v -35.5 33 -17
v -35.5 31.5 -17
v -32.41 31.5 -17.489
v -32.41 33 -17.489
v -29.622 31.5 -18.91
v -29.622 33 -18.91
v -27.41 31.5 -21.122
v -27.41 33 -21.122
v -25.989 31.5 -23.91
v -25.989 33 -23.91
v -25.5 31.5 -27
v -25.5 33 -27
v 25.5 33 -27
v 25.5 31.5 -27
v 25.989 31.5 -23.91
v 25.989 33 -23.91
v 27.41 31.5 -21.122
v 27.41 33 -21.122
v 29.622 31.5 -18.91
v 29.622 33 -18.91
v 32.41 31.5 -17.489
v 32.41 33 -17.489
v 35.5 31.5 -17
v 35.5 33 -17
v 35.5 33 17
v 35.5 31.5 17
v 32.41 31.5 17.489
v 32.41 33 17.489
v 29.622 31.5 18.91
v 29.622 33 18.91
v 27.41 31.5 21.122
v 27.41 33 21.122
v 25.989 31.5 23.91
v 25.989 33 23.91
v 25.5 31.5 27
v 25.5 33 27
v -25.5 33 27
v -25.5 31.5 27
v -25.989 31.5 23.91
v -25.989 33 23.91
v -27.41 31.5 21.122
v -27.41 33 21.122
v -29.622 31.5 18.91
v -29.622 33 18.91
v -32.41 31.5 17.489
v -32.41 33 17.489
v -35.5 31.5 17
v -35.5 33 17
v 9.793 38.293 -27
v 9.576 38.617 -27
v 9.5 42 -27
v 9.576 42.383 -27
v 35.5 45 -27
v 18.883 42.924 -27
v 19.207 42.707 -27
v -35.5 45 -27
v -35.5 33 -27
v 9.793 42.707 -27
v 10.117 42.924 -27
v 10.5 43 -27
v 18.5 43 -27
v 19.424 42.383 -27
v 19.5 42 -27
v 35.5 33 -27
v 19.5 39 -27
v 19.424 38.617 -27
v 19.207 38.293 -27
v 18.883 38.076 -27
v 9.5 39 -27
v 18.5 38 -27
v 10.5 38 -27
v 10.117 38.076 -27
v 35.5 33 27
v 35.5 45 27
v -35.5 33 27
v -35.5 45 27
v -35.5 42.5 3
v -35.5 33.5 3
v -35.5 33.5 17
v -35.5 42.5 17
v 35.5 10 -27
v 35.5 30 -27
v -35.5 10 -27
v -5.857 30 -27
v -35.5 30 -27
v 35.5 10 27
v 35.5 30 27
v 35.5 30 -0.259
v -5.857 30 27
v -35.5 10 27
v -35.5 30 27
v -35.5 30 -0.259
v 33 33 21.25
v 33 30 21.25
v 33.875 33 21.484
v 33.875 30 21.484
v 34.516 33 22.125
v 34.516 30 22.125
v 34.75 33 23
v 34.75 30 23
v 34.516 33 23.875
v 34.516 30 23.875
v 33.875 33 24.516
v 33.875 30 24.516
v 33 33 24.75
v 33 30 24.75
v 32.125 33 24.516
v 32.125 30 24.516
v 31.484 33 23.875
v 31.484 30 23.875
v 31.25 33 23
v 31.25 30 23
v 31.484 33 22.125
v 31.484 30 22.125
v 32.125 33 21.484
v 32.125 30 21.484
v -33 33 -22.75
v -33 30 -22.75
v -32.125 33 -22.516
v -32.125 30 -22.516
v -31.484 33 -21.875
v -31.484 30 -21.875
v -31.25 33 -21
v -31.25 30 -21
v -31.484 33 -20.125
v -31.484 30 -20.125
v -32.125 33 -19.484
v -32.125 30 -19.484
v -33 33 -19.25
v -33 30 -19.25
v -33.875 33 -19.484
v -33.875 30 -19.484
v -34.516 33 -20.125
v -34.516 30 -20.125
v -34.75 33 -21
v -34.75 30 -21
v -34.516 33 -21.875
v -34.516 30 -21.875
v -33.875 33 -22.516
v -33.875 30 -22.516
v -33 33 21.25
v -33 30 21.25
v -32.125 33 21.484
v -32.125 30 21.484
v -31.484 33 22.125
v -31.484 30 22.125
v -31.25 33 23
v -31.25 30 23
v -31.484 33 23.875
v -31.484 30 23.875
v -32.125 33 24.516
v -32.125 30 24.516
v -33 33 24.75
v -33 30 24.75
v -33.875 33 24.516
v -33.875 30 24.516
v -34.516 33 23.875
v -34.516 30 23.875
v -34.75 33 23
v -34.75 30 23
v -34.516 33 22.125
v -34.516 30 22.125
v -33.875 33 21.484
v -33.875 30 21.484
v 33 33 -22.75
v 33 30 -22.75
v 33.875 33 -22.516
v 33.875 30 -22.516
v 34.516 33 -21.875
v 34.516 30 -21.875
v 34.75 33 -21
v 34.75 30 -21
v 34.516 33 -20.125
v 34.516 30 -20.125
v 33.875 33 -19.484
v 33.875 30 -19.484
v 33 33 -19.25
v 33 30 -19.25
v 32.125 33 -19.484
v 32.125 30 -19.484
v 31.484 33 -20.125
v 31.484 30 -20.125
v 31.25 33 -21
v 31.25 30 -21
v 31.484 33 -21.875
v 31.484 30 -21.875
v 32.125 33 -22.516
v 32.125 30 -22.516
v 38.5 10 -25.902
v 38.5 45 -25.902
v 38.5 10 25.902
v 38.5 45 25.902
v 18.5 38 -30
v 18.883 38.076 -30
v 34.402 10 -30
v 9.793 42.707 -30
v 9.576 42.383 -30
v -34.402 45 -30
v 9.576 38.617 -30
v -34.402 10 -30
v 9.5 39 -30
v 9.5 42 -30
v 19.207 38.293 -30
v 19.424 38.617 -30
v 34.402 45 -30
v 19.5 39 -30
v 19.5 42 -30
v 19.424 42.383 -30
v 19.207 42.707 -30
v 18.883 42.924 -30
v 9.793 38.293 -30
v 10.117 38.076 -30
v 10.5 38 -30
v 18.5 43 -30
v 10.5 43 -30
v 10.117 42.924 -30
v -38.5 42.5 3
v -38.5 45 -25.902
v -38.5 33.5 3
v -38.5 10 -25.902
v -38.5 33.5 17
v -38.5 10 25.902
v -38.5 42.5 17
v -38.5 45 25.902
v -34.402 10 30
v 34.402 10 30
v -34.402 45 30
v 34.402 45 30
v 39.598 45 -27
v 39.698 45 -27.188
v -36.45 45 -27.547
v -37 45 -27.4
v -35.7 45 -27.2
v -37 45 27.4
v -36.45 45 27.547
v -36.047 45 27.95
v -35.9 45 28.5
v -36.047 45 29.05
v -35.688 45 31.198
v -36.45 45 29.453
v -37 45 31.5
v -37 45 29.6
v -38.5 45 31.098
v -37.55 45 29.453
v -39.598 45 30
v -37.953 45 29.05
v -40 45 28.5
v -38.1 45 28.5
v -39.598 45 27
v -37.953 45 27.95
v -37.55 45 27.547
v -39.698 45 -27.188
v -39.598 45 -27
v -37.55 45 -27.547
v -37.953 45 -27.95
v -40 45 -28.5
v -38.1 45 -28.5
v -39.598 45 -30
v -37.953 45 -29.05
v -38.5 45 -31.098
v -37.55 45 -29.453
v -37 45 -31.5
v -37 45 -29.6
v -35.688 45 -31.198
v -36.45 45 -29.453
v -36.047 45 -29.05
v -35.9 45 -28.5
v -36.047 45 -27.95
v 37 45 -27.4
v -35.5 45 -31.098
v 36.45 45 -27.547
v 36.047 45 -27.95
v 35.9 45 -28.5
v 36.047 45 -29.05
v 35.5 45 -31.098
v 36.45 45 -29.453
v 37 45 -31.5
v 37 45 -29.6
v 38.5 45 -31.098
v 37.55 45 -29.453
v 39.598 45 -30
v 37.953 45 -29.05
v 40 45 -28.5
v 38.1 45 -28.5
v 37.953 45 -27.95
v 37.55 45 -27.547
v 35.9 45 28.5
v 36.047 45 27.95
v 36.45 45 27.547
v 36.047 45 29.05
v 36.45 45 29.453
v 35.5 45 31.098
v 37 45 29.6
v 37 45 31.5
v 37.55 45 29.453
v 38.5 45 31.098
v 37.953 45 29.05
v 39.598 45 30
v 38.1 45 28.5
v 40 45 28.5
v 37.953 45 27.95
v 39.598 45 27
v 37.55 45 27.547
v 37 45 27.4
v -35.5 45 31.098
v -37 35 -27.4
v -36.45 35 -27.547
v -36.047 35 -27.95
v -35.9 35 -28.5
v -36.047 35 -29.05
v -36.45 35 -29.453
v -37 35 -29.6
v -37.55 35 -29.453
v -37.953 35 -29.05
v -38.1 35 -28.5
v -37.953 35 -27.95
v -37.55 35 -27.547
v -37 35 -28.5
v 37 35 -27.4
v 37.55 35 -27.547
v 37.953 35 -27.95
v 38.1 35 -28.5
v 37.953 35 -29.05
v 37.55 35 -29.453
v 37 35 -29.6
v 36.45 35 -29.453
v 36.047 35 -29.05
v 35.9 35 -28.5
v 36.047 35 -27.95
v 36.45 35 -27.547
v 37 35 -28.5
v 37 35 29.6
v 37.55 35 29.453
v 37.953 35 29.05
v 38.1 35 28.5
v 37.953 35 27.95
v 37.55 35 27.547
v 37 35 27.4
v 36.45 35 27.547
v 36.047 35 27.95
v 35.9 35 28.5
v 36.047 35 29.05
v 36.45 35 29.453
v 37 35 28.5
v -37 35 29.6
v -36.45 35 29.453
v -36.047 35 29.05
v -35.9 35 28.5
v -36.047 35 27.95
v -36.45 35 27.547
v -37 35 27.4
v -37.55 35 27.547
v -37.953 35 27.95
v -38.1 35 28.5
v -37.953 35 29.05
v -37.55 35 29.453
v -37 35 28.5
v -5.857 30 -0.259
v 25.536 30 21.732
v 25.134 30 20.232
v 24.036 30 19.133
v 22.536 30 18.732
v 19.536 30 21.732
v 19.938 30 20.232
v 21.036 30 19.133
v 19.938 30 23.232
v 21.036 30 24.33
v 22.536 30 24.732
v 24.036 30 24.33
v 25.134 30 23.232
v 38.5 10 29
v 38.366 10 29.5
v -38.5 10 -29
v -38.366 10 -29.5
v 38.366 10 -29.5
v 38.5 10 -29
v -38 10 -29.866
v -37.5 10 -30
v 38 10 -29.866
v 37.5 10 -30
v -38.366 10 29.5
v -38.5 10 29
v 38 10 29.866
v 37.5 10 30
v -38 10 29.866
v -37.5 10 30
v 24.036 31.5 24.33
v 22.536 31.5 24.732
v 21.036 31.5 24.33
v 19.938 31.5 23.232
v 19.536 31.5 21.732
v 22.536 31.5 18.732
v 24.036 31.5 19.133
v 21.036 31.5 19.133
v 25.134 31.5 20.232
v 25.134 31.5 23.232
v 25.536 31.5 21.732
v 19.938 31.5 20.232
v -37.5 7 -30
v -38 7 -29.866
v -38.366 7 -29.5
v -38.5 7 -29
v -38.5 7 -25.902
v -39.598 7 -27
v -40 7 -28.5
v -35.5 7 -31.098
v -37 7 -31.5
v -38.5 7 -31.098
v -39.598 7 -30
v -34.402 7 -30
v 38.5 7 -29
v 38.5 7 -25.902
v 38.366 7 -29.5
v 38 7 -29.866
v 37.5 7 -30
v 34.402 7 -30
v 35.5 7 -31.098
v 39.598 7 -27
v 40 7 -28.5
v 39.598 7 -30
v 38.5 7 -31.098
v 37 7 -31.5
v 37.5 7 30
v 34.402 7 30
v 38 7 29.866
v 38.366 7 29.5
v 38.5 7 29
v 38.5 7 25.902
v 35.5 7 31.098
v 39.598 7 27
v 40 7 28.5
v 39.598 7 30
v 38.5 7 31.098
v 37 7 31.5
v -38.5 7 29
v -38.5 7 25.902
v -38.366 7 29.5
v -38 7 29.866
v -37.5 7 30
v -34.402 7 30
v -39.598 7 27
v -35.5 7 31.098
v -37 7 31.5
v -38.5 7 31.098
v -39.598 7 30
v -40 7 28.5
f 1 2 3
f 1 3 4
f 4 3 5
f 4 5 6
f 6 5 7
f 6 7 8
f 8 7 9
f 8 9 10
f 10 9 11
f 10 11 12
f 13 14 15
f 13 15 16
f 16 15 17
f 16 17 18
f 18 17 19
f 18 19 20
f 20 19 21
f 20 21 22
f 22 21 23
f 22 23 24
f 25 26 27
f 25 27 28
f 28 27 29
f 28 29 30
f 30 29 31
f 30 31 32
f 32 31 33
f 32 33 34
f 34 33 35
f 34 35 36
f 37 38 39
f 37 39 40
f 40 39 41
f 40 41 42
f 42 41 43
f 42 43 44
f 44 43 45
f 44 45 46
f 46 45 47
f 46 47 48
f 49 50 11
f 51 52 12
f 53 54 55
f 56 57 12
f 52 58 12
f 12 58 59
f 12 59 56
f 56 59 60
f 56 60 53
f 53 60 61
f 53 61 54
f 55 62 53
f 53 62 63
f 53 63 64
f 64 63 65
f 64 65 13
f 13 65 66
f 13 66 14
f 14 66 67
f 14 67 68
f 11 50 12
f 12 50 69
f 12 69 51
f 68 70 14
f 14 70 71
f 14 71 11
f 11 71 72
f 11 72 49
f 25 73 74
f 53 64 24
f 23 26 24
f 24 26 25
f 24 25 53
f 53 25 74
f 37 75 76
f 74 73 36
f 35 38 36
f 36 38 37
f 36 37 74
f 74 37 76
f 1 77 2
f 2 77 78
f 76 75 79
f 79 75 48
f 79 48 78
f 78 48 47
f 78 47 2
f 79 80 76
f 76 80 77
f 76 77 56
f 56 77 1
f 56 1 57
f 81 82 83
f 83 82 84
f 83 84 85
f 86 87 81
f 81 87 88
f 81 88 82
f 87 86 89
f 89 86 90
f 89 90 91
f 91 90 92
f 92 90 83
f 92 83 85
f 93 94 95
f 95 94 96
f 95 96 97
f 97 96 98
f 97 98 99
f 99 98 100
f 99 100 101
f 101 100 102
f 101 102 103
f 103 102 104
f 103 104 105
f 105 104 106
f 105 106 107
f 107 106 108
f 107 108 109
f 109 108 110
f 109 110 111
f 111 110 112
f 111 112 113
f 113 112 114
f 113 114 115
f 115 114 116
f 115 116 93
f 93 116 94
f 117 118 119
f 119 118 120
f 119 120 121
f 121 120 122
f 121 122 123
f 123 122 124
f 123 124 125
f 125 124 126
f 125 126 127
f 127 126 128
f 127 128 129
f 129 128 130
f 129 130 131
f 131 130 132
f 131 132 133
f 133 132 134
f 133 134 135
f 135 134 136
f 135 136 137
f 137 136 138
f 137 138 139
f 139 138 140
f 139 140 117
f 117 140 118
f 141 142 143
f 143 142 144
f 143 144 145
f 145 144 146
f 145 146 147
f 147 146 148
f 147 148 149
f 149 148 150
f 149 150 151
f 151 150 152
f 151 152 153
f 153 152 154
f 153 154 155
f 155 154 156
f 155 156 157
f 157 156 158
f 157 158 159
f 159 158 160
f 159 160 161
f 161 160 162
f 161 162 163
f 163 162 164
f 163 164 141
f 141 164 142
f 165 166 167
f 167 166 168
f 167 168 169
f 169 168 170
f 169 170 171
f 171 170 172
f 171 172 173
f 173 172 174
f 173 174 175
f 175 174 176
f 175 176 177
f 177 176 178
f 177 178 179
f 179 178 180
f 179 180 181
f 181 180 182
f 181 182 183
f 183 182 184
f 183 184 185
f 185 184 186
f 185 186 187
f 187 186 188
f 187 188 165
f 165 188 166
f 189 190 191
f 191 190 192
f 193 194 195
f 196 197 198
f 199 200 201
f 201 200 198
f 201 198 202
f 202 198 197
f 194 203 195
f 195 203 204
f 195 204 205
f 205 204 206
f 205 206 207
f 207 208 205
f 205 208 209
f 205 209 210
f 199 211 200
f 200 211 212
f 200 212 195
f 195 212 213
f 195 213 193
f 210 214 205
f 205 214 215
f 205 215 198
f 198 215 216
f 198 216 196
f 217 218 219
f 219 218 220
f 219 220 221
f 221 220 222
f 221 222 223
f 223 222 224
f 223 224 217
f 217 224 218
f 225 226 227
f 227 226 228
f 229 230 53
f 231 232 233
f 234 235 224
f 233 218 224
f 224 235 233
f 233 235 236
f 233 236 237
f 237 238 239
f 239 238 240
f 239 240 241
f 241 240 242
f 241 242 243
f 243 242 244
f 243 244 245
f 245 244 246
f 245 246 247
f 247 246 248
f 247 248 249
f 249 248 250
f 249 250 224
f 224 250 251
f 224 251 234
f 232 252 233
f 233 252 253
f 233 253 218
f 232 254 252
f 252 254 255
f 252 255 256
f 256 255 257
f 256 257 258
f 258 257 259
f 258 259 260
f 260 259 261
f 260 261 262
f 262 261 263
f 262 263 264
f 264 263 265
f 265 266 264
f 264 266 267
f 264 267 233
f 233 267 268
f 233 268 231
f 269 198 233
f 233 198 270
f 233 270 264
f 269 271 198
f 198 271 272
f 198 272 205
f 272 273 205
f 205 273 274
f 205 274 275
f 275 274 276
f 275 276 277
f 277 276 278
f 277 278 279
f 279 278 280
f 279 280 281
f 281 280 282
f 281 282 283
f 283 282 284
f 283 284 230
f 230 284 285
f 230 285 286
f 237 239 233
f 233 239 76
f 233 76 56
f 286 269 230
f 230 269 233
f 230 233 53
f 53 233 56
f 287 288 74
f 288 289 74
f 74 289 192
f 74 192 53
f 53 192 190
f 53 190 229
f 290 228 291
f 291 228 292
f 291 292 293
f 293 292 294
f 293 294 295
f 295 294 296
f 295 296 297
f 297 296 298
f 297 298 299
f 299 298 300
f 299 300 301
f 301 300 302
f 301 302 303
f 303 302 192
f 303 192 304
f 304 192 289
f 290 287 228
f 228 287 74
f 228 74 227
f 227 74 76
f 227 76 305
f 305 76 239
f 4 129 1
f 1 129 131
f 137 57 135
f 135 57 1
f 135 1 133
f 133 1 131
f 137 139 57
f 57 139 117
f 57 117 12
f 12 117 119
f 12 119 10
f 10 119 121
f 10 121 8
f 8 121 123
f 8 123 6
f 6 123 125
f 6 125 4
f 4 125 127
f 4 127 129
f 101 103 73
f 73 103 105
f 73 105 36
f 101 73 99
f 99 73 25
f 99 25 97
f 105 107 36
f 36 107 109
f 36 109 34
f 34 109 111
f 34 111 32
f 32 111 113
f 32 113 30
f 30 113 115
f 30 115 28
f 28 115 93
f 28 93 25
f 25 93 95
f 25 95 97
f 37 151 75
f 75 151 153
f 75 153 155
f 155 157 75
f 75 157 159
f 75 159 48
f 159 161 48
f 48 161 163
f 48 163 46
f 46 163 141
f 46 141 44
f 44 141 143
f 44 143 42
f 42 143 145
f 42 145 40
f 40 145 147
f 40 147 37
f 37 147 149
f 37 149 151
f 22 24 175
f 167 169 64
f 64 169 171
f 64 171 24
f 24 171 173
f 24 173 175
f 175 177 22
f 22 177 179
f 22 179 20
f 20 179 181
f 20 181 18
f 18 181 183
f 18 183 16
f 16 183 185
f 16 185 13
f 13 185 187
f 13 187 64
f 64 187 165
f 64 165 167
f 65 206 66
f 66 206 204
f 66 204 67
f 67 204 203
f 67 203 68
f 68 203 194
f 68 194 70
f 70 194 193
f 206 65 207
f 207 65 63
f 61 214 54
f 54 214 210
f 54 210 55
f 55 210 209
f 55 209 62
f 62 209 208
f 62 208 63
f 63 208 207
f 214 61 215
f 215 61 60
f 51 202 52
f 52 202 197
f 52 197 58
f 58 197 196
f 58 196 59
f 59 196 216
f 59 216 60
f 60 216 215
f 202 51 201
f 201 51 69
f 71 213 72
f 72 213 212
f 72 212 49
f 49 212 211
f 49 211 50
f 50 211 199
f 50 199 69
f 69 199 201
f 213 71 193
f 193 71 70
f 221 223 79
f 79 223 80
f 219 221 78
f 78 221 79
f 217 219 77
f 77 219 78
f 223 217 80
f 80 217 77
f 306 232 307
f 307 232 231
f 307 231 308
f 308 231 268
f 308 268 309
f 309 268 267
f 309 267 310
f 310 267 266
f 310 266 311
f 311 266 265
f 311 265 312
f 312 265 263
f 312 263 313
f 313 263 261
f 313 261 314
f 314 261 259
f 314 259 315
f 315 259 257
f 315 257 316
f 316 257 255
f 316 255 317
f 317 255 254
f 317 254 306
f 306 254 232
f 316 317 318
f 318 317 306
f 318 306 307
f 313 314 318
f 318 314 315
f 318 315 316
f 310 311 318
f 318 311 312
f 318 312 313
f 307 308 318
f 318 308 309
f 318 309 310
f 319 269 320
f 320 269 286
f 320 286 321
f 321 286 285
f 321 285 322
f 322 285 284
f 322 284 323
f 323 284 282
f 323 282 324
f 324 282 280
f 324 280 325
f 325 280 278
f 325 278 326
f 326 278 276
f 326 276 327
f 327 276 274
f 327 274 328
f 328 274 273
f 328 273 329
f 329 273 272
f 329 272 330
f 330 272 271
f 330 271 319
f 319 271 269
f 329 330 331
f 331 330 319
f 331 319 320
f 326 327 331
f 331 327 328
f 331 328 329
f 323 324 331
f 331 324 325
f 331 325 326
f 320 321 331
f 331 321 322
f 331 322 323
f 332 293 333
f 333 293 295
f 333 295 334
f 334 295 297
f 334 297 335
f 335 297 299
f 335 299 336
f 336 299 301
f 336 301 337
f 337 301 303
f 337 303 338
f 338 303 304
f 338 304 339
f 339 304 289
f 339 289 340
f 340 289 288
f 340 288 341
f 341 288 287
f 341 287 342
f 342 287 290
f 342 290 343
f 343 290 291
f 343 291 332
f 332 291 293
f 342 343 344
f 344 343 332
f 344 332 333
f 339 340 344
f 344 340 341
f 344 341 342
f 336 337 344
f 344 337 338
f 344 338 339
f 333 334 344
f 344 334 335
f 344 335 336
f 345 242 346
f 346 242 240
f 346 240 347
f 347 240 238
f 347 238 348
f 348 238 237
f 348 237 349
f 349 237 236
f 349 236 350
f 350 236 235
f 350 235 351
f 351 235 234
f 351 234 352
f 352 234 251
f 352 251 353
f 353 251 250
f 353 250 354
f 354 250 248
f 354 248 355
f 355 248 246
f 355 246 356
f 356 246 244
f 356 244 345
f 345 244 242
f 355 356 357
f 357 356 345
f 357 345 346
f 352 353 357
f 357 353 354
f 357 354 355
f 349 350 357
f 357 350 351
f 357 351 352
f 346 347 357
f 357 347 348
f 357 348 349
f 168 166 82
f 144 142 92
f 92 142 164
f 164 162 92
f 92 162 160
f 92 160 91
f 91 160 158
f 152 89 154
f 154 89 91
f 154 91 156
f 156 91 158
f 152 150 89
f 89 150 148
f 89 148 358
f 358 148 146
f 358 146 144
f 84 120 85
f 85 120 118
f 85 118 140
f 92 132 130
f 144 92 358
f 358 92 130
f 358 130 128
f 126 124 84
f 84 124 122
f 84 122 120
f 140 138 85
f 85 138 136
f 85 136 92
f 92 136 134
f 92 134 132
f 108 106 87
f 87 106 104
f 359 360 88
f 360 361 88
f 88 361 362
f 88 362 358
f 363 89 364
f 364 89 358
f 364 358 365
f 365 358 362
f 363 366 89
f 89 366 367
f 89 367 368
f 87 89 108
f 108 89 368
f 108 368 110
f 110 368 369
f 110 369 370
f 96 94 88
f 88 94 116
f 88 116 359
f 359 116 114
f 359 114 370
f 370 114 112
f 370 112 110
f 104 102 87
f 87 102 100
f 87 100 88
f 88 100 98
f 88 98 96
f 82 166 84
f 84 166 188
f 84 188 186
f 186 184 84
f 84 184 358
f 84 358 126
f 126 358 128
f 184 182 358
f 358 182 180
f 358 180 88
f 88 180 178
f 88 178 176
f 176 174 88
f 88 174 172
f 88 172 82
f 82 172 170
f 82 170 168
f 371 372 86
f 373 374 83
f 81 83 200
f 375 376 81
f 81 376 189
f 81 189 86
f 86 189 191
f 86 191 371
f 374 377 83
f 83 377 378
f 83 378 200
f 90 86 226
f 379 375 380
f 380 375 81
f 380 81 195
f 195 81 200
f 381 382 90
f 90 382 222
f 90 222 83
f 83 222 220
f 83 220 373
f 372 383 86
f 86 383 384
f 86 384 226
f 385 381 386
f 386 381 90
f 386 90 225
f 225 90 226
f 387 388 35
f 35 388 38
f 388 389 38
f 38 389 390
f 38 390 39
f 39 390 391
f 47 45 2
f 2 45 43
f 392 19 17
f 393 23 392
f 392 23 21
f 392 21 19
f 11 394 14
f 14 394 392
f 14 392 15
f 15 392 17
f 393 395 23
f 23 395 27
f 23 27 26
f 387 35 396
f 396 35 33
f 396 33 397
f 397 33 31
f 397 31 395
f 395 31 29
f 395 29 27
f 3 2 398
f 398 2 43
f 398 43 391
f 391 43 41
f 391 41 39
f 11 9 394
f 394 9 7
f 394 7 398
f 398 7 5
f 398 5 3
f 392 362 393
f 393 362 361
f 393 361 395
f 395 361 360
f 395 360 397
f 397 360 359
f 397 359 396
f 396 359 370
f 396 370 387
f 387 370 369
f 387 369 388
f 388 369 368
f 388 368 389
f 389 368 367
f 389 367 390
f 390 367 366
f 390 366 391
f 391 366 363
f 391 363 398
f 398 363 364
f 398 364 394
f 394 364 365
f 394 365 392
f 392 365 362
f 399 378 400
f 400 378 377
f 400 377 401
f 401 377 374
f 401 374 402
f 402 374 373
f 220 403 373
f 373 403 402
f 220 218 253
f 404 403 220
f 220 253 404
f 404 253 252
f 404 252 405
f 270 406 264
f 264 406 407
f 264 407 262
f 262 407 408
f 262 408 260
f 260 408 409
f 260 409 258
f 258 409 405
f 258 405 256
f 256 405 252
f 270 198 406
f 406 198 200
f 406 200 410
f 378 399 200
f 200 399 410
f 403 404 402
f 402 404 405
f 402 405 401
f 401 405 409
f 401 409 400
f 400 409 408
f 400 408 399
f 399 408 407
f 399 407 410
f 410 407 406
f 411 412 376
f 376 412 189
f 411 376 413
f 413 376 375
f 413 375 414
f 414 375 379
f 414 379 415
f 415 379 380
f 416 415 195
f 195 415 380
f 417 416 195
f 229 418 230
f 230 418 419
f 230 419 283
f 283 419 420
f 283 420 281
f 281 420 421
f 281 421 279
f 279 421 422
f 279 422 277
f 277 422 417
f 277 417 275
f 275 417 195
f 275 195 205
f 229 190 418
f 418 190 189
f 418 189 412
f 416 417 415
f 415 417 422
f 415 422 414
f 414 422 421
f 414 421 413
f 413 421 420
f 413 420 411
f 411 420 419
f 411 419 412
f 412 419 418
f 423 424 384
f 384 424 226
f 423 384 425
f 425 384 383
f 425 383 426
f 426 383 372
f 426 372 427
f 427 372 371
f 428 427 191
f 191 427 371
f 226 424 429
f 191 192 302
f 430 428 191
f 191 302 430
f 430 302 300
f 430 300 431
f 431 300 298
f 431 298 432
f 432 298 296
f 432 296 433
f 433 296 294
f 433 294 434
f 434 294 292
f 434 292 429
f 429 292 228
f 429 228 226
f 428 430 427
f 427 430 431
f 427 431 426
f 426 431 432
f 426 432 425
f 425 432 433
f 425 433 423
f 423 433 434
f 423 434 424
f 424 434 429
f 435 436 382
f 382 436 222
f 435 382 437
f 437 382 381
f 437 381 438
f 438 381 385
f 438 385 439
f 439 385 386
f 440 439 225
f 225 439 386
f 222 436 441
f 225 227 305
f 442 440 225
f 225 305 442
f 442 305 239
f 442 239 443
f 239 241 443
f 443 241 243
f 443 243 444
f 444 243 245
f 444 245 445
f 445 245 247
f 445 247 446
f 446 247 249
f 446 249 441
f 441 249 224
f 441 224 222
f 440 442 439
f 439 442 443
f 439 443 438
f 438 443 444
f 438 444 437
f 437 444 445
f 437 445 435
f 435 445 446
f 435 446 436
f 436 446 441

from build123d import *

# Parameters (mm, degrees)
SKETCH1_W           = 77
SKETCH1_H           = 60
SKETCH1_W_2         = 71
SKETCH1_H_2         = 54
SKETCH1_R           = 1.75
BOSS_EXTRUDE1_DEPTH = 45
SKETCH2_R           = 1.75
CUT_EXTRUDE1_DEPTH  = 12
SKETCH3_W           = 77
SKETCH3_H           = 60
SKETCH3_R           = 1.75
BOSS_EXTRUDE2_DEPTH = 3
CUT_EXTRUDE2_DEPTH  = 10
SKETCH6_W           = 14
SKETCH6_H           = 9
CUT_EXTRUDE3_DEPTH  = 10
SKETCH7_R           = 1.1
CUT_EXTRUDE4_DEPTH  = 10
SKETCH9_W           = 60
SKETCH9_H           = 30
CUT_EXTRUDE5_DEPTH  = 169
SKETCH10_W          = 77
SKETCH10_H          = 60
BOSS_EXTRUDE3_DEPTH = 20
BOSS_EXTRUDE4_DEPTH = 1.5
SKETCH13_R          = 3
CUT_EXTRUDE6_DEPTH  = 1.5
FILLET1_R           = 1
BOSS_EXTRUDE5_DEPTH = 38
BOSS_EXTRUDE6_DEPTH = 38


with BuildPart() as part:
    # Sketch1 → Boss-Extrude1 (new body)
    with BuildSketch(Plane(origin=(0, 0, 0), x_dir=(1, 0, 0), z_dir=(0, 1, 0))):
        Rectangle(SKETCH1_W, SKETCH1_H)
        Rectangle(SKETCH1_W_2, SKETCH1_H_2, mode=Mode.SUBTRACT)
        with BuildLine():
            ThreePointArc((-25.5, -27), (-28.428932188, -19.928932188), (-35.5, -17))
            Line((-35.5, -17), (-35.5, -27))
            Line((-35.5, -27), (-25.5, -27))
        make_face()
        with Locations((-33, -23)):
            Circle(SKETCH1_R, mode=Mode.SUBTRACT)
        with BuildLine():
            Line((-25.5, 27), (-35.5, 27))
            Line((-35.5, 27), (-35.5, 17))
            ThreePointArc((-35.5, 17), (-28.428932188, 19.928932188), (-25.5, 27))
        make_face()
        with Locations((-33, 21)):
            Circle(SKETCH1_R, mode=Mode.SUBTRACT)
        with BuildLine():
            Line((35.5, 27), (25.5, 27))
            ThreePointArc((25.5, 27), (28.428932188, 19.928932188), (35.5, 17))
            Line((35.5, 17), (35.5, 27))
        make_face()
        with Locations((33, 21)):
            Circle(SKETCH1_R, mode=Mode.SUBTRACT)
        with BuildLine():
            Line((35.5, -27), (35.5, -17))
            ThreePointArc((35.5, -17), (28.428932188, -19.928932188), (25.5, -27))
            Line((25.5, -27), (35.5, -27))
        make_face()
        with Locations((33, -23)):
            Circle(SKETCH1_R, mode=Mode.SUBTRACT)
    extrude(amount=BOSS_EXTRUDE1_DEPTH)

    # Sketch2 → Cut-Extrude1 (cut)
    with BuildSketch(Plane(origin=(0, 45, 0), x_dir=(1, 0, 0), z_dir=(0, 1, 0))):
        with BuildLine():
            Line((-25.5, 27), (-35.5, 27))
            Line((-35.5, 27), (-35.5, 17))
            ThreePointArc((-35.5, 17), (-28.428932188, 19.928932188), (-25.5, 27))
        make_face()
        with Locations((-33, 21)):
            Circle(SKETCH2_R, mode=Mode.SUBTRACT)
        with BuildLine():
            Line((35.5, 17), (35.5, 27))
            Line((35.5, 27), (25.5, 27))
            ThreePointArc((25.5, 27), (28.428932188, 19.928932188), (35.5, 17))
        make_face()
        with Locations((33, 21)):
            Circle(SKETCH2_R, mode=Mode.SUBTRACT)
        with BuildLine():
            Line((-25.5, -27), (-35.5, -27))
            Line((-35.5, -27), (-35.5, -17))
            ThreePointArc((-35.5, -17), (-28.428932188, -19.928932188), (-25.5, -27))
        make_face()
        with Locations((-33, -23)):
            Circle(SKETCH2_R, mode=Mode.SUBTRACT)
        with BuildLine():
            Line((25.5, -27), (35.5, -27))
            Line((35.5, -27), (35.5, -17))
            ThreePointArc((35.5, -17), (28.428932188, -19.928932188), (25.5, -27))
        make_face()
        with Locations((33, -23)):
            Circle(SKETCH2_R, mode=Mode.SUBTRACT)
    extrude(amount=-CUT_EXTRUDE1_DEPTH, mode=Mode.SUBTRACT)

    # Sketch3 → Boss-Extrude2 (add)
    with BuildSketch(Plane.XZ):
        Rectangle(SKETCH3_W, SKETCH3_H)
        with Locations((33, -21)):
            Circle(SKETCH3_R, mode=Mode.SUBTRACT)
        with Locations((-33, -21)):
            Circle(SKETCH3_R, mode=Mode.SUBTRACT)
        with Locations((33, 23)):
            Circle(SKETCH3_R, mode=Mode.SUBTRACT)
        with Locations((-33, 23)):
            Circle(SKETCH3_R, mode=Mode.SUBTRACT)
    extrude(amount=-BOSS_EXTRUDE2_DEPTH)

    # Sketch4 → Cut-Extrude2 (cut)
    with BuildSketch(Plane(origin=(0, 0, -30), x_dir=(-1, 0, 0), z_dir=(0, 0, -1))):
        with BuildLine():
            Line((-18.5, 43), (-10.5, 43))
            ThreePointArc((-10.5, 43), (-9.792893219, 42.707106781), (-9.5, 42))
            Line((-9.5, 42), (-9.5, 39))
            ThreePointArc((-9.5, 39), (-9.792893219, 38.292893219), (-10.5, 38))
            Line((-10.5, 38), (-18.5, 38))
            ThreePointArc((-18.5, 38), (-19.207106781, 38.292893219), (-19.5, 39))
            Line((-19.5, 39), (-19.5, 42))
            ThreePointArc((-19.5, 42), (-19.207106781, 42.707106781), (-18.5, 43))
        make_face()
    extrude(amount=-CUT_EXTRUDE2_DEPTH, mode=Mode.SUBTRACT)

    # Sketch6 → Cut-Extrude3 (cut)
    with BuildSketch(Plane.ZY.offset(38.5)):
        with Locations((10, 38)):
            Rectangle(SKETCH6_W, SKETCH6_H)
    extrude(amount=-CUT_EXTRUDE3_DEPTH, mode=Mode.SUBTRACT)

    # Sketch7 → Cut-Extrude4 (cut)
    with BuildSketch(Plane(origin=(0, 45, 0), x_dir=(1, 0, 0), z_dir=(0, 1, 0))):
        with Locations((-37, 28.5)):
            Circle(SKETCH7_R)
        with Locations((37, 28.5)):
            Circle(SKETCH7_R)
        with Locations((37, -28.5)):
            Circle(SKETCH7_R)
        with Locations((-37, -28.5)):
            Circle(SKETCH7_R)
    extrude(amount=-CUT_EXTRUDE4_DEPTH, mode=Mode.SUBTRACT)

    # Sketch9 → Cut-Extrude5 (cut)
    with BuildSketch(Plane.ZY.offset(38.5)):
        with Locations((0, 15)):
            Rectangle(SKETCH9_W, SKETCH9_H)
    extrude(amount=-CUT_EXTRUDE5_DEPTH, mode=Mode.SUBTRACT)

    # Sketch10 → Boss-Extrude3 (add)
    with BuildSketch(Plane.XZ.offset(-30)):
        Rectangle(SKETCH10_W, SKETCH10_H)
        Polygon((-35.5, 17), (-35.5, 27), (-25.5, 27), (25.5, 27), (35.5, 27), (35.5, 17), (35.5, -17), (35.5, -27), (25.5, -27), (-25.5, -27), (-35.5, -27), (-35.5, -17), align=None, mode=Mode.SUBTRACT)
    extrude(amount=BOSS_EXTRUDE3_DEPTH)

    # Sketch11 → Boss-Extrude4 (add)
    with BuildSketch(Plane.XZ.offset(-30)):
        with BuildLine():
            Line((35.5, 17), (35.5, -17))
            ThreePointArc((35.5, -17), (28.428932188, -19.928932188), (25.5, -27))
            Line((25.5, -27), (-25.5, -27))
            ThreePointArc((-25.5, -27), (-28.428932188, -19.928932188), (-35.5, -17))
            Line((-35.5, -17), (-35.5, 17))
            ThreePointArc((-35.5, 17), (-28.428932188, 19.928932188), (-25.5, 27))
            Line((-25.5, 27), (25.5, 27))
            ThreePointArc((25.5, 27), (28.428932188, 19.928932188), (35.5, 17))
        make_face()
    extrude(amount=-BOSS_EXTRUDE4_DEPTH)

    # Sketch13 → Cut-Extrude6 (cut)
    with BuildSketch(Plane.XZ.offset(-30)):
        with Locations((22.535934278, 21.73153163)):
            Circle(SKETCH13_R)
    extrude(amount=-CUT_EXTRUDE6_DEPTH, mode=Mode.SUBTRACT)

    # Fillet1
    fillet1_edges = [part.edges().sort_by_distance(p)[0] for p in [
        (38.5, 27.5, 30),
        (-38.5, 27.5, 30),
        (-38.5, 27.5, -30),
        (38.5, 27.5, -30),
    ]]
    fillet(fillet1_edges, radius=FILLET1_R)

    # Sketch14 → Boss-Extrude5 (add)
    with BuildSketch(Plane(origin=(0, 45, 0), x_dir=(1, 0, 0), z_dir=(0, 1, 0))):
        with BuildLine():
            Line((-38.5, 29), (-38.5, 25.901923789))
            ThreePointArc((-38.5, 25.901923789), (-39.121320344, 30.621320344), (-34.401923789, 30))
            Line((-34.401923789, 30), (-37.5, 30))
            ThreePointArc((-37.5, 30), (-38.207106781, 29.707106781), (-38.5, 29))
        make_face()
    extrude(amount=-BOSS_EXTRUDE5_DEPTH)

    # Sketch15 → Boss-Extrude6 (add)
    with BuildSketch(Plane(origin=(0, 45, 0), x_dir=(1, 0, 0), z_dir=(0, 1, 0))):
        with BuildLine():
            Line((38.5, 29), (38.5, 25.901923789))
            ThreePointArc((38.5, 25.901923789), (39.121320344, 30.621320344), (34.401923789, 30))
            Line((34.401923789, 30), (37.5, 30))
            ThreePointArc((37.5, 30), (38.207106781, 29.707106781), (38.5, 29))
        make_face()
        with BuildLine():
            Line((37.5, -30), (34.401923789, -30))
            ThreePointArc((34.401923789, -30), (39.121320344, -30.621320344), (38.5, -25.901923789))
            Line((38.5, -25.901923789), (38.5, -29))
            ThreePointArc((38.5, -29), (38.207106781, -29.707106781), (37.5, -30))
        make_face()
        with BuildLine():
            ThreePointArc((-38.5, -25.901923789), (-39.121320344, -30.621320344), (-34.401923789, -30))
            Line((-34.401923789, -30), (-37.5, -30))
            ThreePointArc((-37.5, -30), (-38.207106781, -29.707106781), (-38.5, -29))
            Line((-38.5, -29), (-38.5, -25.901923789))
        make_face()
    extrude(amount=-BOSS_EXTRUDE6_DEPTH)


solid = part.part
